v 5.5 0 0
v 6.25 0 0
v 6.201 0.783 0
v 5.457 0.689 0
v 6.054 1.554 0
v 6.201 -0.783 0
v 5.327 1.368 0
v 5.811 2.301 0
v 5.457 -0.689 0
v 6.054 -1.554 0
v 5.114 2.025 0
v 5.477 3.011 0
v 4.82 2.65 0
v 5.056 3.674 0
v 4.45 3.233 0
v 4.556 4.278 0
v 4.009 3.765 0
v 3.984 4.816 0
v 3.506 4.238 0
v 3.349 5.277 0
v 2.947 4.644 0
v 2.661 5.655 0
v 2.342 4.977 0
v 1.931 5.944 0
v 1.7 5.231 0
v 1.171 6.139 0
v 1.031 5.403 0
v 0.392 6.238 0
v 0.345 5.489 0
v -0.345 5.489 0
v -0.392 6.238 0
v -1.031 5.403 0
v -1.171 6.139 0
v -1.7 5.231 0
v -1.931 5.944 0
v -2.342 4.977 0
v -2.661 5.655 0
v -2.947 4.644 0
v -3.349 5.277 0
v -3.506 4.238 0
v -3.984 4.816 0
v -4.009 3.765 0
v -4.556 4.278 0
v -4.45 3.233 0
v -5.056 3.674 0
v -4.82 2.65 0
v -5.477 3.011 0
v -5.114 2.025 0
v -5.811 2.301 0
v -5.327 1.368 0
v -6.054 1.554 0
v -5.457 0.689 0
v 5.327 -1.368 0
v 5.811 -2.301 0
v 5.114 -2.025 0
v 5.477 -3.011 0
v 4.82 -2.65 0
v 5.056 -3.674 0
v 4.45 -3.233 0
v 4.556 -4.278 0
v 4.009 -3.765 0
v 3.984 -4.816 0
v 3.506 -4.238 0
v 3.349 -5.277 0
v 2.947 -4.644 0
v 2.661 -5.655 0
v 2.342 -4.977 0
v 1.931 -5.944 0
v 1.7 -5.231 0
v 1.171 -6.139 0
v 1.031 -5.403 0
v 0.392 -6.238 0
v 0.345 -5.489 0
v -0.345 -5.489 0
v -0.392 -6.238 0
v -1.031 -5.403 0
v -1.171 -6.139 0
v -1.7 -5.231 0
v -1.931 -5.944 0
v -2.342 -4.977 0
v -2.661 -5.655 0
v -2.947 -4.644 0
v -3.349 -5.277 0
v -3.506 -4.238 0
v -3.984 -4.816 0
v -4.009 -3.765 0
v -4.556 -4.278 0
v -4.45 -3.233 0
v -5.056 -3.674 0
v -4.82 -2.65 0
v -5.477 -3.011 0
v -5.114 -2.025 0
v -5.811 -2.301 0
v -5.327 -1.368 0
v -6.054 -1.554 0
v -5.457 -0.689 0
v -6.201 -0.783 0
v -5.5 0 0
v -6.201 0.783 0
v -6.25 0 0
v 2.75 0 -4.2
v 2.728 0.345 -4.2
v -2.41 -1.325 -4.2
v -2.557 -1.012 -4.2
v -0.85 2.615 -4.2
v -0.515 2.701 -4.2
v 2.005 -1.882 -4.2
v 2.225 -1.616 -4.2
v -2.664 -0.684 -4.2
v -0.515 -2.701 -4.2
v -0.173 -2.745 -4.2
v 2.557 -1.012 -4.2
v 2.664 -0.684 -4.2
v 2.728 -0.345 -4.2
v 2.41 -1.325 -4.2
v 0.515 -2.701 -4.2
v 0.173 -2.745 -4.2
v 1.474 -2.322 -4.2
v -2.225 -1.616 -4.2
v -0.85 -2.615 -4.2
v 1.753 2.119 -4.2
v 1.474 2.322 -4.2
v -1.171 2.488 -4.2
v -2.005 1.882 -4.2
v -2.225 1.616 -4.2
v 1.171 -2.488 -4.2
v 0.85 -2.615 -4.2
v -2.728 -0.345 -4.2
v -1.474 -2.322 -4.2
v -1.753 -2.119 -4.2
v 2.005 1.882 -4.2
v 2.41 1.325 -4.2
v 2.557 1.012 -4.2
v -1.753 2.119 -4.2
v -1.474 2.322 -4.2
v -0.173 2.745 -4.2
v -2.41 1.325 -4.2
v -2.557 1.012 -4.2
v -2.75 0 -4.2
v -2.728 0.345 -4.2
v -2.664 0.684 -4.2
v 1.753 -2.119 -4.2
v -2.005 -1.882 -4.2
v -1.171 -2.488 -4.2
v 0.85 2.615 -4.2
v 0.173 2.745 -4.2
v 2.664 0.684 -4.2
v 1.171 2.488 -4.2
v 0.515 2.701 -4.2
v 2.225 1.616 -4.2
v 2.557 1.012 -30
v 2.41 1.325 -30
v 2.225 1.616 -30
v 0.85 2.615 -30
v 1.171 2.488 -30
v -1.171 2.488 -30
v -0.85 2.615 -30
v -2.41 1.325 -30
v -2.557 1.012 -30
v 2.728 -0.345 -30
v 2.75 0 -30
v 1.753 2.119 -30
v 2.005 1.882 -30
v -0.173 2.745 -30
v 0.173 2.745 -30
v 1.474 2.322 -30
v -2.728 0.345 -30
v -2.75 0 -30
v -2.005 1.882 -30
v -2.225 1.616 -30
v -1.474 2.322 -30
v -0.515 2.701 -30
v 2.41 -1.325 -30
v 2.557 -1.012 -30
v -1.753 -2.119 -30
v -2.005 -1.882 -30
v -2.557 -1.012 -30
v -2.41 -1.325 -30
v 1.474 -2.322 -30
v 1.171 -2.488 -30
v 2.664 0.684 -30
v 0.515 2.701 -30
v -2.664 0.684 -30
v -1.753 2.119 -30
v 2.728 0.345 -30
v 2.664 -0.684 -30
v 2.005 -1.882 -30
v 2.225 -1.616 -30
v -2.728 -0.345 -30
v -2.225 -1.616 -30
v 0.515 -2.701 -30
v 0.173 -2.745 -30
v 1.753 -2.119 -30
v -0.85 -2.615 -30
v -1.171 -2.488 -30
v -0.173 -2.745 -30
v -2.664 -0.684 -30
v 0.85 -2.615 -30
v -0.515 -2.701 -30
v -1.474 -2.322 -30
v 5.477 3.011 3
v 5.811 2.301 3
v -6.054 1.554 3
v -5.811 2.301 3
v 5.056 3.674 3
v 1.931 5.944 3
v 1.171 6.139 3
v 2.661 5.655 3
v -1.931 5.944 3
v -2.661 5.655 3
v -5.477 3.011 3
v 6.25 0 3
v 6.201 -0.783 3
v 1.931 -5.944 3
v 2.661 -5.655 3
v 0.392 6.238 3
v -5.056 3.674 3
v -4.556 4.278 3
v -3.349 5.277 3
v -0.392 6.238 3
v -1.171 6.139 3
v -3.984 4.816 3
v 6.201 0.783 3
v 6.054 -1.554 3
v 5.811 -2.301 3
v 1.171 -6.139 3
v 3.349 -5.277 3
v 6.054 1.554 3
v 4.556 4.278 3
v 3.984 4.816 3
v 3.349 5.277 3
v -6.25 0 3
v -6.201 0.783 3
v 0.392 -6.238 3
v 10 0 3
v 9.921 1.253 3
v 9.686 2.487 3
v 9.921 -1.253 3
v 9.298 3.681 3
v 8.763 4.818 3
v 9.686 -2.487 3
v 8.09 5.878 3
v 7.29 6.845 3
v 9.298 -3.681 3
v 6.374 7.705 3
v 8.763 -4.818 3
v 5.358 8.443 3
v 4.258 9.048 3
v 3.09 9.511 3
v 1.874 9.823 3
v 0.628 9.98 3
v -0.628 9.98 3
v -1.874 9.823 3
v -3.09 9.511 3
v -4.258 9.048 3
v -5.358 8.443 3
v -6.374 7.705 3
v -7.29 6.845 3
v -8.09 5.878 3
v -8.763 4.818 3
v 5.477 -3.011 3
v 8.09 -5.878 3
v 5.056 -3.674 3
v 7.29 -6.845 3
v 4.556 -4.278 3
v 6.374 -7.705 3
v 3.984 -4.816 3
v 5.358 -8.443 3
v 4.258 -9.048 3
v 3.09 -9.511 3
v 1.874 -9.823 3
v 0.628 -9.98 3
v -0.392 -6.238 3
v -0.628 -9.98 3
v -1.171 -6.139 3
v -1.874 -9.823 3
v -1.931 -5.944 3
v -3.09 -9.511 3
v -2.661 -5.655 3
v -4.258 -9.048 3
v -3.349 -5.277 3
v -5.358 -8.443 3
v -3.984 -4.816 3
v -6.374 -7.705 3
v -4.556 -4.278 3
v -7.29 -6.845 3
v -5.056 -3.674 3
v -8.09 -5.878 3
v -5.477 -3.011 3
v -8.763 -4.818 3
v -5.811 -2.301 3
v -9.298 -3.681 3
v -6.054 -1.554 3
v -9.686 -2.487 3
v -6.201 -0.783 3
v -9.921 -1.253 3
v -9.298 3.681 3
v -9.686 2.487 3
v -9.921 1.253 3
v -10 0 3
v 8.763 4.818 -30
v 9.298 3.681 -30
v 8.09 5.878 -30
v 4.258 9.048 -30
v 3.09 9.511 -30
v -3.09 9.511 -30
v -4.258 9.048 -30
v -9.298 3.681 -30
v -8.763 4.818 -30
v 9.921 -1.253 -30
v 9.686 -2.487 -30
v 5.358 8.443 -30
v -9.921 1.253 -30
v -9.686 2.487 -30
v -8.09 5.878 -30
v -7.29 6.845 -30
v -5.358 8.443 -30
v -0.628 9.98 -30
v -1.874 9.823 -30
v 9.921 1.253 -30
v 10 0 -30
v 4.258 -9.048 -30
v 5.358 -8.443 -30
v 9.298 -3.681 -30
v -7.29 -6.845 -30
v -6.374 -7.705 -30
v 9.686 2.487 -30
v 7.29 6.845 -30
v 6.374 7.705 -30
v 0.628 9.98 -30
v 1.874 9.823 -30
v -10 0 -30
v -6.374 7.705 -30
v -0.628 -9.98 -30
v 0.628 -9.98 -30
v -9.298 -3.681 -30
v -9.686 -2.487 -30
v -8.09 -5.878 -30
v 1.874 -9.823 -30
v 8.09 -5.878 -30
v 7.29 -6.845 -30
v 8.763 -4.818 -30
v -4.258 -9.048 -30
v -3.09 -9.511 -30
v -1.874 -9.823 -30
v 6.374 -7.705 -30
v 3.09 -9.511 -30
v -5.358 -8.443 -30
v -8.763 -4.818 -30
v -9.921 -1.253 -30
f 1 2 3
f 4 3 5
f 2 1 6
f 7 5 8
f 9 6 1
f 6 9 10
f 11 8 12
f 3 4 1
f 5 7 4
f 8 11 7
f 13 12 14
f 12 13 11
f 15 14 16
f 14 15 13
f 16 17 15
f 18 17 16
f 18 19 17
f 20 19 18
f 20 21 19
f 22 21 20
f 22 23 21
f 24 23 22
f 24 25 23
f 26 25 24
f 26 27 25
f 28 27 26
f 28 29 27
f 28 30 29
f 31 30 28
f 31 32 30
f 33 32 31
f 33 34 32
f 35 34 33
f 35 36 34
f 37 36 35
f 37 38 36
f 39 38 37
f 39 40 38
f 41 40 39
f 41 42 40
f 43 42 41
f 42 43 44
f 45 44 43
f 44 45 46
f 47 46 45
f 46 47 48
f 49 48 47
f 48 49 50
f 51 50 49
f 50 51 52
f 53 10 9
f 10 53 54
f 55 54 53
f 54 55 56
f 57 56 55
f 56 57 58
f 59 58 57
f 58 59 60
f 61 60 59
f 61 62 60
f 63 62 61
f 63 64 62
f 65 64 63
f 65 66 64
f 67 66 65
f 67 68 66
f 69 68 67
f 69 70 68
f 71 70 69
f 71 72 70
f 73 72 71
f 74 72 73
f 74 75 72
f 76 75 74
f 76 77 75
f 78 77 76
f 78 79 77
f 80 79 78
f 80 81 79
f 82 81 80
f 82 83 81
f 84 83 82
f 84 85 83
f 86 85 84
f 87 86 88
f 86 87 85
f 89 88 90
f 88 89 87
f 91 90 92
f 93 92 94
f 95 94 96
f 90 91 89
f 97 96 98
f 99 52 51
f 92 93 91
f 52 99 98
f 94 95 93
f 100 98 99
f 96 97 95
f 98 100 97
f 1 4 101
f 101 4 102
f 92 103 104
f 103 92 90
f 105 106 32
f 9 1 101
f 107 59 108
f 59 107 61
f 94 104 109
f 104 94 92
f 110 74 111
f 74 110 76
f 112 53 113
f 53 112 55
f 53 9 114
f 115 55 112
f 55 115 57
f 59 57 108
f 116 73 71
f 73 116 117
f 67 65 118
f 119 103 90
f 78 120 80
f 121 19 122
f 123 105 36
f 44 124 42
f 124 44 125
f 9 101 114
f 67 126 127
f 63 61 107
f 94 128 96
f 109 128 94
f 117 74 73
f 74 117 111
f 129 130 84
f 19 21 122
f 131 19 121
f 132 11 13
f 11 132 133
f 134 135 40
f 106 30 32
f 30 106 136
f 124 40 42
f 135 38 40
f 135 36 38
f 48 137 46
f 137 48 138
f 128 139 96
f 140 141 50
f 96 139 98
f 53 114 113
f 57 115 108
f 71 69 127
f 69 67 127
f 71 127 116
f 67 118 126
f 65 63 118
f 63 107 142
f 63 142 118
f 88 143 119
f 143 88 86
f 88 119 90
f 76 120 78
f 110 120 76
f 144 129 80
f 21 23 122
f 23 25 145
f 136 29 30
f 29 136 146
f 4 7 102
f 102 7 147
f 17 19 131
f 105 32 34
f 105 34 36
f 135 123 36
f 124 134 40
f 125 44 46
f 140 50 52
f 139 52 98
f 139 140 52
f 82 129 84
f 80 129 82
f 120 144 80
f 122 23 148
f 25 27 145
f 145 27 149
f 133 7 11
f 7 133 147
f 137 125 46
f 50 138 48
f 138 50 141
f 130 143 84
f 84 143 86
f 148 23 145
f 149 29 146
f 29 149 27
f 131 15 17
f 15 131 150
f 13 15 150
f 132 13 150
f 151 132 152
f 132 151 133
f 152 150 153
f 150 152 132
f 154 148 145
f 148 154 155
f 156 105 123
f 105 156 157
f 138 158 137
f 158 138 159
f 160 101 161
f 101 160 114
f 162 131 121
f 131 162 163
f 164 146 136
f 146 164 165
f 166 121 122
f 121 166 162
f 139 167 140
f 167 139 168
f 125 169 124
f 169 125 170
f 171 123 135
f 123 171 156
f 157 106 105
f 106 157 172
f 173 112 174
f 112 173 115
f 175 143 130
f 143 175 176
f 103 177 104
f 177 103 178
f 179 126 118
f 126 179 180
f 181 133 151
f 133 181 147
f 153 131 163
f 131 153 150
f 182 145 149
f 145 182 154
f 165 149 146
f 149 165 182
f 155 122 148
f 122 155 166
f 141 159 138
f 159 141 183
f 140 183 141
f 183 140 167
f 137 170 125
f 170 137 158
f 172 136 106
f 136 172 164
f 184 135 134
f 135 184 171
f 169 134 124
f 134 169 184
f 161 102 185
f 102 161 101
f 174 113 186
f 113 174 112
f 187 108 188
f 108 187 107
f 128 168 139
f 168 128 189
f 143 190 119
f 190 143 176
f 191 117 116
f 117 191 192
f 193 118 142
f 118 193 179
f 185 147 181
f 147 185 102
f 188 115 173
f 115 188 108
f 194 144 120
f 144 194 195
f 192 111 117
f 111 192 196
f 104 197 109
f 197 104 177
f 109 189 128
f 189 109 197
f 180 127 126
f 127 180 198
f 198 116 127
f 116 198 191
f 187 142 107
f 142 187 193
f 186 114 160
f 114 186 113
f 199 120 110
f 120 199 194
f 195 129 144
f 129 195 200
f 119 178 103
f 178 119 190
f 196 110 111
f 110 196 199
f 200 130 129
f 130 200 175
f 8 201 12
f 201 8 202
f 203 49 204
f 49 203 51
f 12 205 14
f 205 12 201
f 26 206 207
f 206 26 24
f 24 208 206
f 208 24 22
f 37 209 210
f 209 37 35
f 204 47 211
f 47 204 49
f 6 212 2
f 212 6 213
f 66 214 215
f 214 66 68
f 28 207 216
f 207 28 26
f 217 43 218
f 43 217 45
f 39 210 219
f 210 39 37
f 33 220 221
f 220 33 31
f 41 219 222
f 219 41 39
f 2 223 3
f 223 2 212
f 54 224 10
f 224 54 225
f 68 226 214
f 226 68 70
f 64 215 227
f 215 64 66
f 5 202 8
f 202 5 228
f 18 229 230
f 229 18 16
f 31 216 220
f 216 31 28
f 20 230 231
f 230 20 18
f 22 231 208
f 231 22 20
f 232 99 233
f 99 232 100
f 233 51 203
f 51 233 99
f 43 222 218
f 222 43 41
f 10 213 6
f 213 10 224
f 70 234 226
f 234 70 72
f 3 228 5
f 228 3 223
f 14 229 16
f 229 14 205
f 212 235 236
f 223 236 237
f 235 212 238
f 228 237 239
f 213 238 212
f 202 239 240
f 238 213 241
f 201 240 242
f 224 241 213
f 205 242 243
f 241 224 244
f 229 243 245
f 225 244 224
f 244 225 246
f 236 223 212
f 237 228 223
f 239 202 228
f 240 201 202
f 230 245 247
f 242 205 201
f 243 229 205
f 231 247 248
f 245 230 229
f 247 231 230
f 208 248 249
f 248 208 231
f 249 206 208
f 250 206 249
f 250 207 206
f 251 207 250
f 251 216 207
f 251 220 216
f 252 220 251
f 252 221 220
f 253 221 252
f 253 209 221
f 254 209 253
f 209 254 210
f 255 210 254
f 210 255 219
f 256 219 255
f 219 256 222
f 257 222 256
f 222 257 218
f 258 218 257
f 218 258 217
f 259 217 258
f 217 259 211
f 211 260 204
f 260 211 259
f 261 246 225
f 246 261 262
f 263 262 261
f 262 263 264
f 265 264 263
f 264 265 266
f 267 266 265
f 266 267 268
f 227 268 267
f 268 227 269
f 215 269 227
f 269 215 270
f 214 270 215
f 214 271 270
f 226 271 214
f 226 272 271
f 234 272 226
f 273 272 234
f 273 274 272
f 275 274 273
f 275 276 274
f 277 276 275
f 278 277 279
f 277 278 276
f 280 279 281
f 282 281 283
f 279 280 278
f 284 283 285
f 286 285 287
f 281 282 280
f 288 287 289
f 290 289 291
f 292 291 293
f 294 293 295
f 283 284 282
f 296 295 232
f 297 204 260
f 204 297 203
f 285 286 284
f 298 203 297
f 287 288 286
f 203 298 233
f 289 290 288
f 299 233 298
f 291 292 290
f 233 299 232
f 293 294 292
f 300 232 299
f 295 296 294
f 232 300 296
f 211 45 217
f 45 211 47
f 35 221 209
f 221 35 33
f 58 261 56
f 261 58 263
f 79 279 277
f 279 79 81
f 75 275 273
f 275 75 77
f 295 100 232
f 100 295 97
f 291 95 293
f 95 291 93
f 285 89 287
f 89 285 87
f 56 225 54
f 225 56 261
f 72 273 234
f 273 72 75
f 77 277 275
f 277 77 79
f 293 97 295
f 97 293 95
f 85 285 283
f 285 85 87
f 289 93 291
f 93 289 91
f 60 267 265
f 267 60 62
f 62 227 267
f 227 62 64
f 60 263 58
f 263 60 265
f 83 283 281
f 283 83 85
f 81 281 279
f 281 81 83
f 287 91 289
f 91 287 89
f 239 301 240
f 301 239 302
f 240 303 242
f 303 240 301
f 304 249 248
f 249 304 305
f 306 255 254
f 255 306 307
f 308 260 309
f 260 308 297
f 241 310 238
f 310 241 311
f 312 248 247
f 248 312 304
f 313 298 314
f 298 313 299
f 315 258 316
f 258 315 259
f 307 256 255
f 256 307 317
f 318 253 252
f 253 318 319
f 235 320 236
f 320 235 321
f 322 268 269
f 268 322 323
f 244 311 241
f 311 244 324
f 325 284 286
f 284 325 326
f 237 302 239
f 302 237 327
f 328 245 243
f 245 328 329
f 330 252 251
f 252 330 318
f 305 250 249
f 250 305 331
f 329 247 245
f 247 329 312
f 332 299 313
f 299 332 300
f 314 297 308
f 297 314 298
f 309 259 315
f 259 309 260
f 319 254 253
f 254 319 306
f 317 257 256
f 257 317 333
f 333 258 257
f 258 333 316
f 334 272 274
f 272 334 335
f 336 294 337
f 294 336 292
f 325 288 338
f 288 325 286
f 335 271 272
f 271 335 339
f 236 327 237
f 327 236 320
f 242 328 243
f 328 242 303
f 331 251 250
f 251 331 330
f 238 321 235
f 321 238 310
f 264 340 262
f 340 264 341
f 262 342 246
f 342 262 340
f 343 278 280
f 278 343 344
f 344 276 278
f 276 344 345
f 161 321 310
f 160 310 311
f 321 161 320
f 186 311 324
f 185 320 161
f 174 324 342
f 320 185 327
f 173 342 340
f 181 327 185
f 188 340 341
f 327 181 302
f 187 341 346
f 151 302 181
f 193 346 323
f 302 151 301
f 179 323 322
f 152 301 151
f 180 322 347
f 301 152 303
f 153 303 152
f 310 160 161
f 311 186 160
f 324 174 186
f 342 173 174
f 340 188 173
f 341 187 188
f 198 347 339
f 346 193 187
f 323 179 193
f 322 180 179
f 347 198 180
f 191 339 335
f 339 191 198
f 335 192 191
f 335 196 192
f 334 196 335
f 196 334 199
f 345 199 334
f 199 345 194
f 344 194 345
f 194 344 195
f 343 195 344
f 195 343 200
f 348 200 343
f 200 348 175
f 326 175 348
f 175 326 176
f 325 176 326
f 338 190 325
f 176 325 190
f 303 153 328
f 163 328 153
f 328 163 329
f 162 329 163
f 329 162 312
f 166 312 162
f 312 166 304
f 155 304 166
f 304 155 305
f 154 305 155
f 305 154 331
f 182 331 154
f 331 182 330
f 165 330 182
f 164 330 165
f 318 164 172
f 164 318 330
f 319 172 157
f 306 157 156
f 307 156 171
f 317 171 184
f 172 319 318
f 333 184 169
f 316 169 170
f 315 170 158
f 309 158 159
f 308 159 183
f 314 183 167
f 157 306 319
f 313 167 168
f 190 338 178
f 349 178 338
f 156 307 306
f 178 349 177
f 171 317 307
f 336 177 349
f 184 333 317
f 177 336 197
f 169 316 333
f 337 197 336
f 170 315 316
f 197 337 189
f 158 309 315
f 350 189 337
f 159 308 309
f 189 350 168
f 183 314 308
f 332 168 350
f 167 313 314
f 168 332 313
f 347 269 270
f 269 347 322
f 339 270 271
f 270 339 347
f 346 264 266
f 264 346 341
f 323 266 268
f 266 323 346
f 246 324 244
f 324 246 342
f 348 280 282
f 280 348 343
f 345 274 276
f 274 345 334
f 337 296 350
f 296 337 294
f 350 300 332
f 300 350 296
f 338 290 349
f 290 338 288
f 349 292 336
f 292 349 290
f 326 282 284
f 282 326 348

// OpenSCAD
$fn = 50;

difference() {
	union() {
		translate(v = [0, 0, -30.0]) {
			cylinder(h = 33, r = 10.0);
		}
	}
	union() {
		translate(v = [0, 0, 0]) {
			rotate(a = [0, 0, 0]) {
				difference() {
					union() {
						translate(v = [0, 0, -33.0]) {
							cylinder(h = 33, r = 2.25);
						}
						translate(v = [0, 0, -4.2]) {
							cylinder(h = 4.2, r1 = 2.75, r2 = 5.5);
						}
						translate(v = [0, 0, -33.0]) {
							cylinder(h = 33, r = 2.75);
						}
						translate(v = [0, 0, -33.0]) {
							cylinder(h = 33, r = 2.25);
						}
					}
					union();
				}
			}
		}
		#cylinder(h = 3, r = 6.25);
	}
}
